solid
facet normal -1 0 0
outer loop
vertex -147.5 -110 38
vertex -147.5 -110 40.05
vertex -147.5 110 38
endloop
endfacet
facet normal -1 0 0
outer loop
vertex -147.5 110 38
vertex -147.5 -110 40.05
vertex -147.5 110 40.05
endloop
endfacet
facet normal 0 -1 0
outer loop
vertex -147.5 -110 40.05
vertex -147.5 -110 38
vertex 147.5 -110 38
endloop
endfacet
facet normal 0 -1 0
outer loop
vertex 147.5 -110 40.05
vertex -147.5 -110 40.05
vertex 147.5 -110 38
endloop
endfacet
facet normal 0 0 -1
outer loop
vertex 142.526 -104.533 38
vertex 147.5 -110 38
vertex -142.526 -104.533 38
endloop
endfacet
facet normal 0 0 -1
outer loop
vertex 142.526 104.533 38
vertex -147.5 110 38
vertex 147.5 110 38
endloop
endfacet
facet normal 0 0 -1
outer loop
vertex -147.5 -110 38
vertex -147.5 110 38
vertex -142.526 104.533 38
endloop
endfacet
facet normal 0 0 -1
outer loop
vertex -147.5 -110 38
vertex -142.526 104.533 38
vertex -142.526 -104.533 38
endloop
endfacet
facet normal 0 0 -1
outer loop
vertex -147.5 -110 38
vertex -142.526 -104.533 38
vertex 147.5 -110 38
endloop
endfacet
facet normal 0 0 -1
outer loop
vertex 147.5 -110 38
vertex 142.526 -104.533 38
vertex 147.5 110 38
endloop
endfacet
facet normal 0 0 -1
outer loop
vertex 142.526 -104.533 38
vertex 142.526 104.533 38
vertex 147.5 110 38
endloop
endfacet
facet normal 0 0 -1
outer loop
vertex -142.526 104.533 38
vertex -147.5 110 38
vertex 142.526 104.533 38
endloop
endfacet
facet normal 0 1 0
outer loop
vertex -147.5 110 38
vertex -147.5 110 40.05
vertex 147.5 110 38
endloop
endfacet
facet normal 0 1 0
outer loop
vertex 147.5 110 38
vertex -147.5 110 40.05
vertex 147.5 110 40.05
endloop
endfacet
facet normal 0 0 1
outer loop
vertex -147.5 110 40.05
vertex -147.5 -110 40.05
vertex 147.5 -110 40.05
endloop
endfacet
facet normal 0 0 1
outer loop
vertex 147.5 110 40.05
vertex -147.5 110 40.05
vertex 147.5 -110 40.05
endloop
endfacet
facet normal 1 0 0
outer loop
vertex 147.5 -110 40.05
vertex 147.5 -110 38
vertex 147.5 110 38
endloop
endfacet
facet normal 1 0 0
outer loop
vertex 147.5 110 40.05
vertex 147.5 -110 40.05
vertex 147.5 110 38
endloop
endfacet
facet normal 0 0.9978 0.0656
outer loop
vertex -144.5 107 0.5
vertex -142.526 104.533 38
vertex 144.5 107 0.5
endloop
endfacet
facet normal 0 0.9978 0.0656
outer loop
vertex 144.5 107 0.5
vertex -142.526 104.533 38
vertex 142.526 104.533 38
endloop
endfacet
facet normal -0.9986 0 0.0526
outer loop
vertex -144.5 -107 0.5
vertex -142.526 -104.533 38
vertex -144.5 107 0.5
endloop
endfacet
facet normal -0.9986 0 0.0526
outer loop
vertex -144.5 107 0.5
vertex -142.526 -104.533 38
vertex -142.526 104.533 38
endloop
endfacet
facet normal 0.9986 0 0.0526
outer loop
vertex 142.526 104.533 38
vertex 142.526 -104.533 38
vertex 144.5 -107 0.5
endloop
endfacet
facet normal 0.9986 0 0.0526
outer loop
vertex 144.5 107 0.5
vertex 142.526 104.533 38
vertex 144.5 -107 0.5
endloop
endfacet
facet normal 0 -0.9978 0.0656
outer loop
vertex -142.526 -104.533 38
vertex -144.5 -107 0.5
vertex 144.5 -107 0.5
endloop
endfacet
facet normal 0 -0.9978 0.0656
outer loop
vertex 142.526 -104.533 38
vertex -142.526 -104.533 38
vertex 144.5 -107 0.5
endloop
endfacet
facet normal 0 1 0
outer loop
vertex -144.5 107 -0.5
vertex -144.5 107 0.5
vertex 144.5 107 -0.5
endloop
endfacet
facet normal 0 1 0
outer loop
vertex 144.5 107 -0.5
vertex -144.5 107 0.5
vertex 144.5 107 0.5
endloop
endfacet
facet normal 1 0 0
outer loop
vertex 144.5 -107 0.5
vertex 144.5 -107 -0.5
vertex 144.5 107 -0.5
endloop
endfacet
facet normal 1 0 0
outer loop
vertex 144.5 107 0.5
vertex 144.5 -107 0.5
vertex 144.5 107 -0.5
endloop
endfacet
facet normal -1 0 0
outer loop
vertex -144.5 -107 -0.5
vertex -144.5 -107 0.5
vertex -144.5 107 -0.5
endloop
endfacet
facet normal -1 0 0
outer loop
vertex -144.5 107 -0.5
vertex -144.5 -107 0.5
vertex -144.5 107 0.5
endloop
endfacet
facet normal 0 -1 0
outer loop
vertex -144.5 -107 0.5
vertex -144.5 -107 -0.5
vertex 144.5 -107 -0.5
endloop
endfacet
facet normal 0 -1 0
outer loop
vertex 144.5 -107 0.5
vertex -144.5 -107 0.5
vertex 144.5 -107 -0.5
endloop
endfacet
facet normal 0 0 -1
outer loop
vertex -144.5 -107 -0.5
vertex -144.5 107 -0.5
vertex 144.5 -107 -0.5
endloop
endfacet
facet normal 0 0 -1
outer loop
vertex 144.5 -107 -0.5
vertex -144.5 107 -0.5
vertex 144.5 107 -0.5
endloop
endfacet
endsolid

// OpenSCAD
//Placeholder object for a MKII Electribe unit
//Alexander Hosford
//alexanderhosford@gmail.com
//November 2013


module top_plate() {
	translate([0,0,39.025])
	cube([295,220,2.05],center=true);
}

module unit() {
	hull() {
		translate([0,0,38])
		cube([285,209,1],center=true);
		cube([289,214,1],center=true);
	}
}

module mk2() {
	color("black")
	top_plate();
	color("dark gray")
	unit();
}

module seq_button() {
}

module buttons() {
}

module knob() {
}

module knobs() {
}

mk2();
